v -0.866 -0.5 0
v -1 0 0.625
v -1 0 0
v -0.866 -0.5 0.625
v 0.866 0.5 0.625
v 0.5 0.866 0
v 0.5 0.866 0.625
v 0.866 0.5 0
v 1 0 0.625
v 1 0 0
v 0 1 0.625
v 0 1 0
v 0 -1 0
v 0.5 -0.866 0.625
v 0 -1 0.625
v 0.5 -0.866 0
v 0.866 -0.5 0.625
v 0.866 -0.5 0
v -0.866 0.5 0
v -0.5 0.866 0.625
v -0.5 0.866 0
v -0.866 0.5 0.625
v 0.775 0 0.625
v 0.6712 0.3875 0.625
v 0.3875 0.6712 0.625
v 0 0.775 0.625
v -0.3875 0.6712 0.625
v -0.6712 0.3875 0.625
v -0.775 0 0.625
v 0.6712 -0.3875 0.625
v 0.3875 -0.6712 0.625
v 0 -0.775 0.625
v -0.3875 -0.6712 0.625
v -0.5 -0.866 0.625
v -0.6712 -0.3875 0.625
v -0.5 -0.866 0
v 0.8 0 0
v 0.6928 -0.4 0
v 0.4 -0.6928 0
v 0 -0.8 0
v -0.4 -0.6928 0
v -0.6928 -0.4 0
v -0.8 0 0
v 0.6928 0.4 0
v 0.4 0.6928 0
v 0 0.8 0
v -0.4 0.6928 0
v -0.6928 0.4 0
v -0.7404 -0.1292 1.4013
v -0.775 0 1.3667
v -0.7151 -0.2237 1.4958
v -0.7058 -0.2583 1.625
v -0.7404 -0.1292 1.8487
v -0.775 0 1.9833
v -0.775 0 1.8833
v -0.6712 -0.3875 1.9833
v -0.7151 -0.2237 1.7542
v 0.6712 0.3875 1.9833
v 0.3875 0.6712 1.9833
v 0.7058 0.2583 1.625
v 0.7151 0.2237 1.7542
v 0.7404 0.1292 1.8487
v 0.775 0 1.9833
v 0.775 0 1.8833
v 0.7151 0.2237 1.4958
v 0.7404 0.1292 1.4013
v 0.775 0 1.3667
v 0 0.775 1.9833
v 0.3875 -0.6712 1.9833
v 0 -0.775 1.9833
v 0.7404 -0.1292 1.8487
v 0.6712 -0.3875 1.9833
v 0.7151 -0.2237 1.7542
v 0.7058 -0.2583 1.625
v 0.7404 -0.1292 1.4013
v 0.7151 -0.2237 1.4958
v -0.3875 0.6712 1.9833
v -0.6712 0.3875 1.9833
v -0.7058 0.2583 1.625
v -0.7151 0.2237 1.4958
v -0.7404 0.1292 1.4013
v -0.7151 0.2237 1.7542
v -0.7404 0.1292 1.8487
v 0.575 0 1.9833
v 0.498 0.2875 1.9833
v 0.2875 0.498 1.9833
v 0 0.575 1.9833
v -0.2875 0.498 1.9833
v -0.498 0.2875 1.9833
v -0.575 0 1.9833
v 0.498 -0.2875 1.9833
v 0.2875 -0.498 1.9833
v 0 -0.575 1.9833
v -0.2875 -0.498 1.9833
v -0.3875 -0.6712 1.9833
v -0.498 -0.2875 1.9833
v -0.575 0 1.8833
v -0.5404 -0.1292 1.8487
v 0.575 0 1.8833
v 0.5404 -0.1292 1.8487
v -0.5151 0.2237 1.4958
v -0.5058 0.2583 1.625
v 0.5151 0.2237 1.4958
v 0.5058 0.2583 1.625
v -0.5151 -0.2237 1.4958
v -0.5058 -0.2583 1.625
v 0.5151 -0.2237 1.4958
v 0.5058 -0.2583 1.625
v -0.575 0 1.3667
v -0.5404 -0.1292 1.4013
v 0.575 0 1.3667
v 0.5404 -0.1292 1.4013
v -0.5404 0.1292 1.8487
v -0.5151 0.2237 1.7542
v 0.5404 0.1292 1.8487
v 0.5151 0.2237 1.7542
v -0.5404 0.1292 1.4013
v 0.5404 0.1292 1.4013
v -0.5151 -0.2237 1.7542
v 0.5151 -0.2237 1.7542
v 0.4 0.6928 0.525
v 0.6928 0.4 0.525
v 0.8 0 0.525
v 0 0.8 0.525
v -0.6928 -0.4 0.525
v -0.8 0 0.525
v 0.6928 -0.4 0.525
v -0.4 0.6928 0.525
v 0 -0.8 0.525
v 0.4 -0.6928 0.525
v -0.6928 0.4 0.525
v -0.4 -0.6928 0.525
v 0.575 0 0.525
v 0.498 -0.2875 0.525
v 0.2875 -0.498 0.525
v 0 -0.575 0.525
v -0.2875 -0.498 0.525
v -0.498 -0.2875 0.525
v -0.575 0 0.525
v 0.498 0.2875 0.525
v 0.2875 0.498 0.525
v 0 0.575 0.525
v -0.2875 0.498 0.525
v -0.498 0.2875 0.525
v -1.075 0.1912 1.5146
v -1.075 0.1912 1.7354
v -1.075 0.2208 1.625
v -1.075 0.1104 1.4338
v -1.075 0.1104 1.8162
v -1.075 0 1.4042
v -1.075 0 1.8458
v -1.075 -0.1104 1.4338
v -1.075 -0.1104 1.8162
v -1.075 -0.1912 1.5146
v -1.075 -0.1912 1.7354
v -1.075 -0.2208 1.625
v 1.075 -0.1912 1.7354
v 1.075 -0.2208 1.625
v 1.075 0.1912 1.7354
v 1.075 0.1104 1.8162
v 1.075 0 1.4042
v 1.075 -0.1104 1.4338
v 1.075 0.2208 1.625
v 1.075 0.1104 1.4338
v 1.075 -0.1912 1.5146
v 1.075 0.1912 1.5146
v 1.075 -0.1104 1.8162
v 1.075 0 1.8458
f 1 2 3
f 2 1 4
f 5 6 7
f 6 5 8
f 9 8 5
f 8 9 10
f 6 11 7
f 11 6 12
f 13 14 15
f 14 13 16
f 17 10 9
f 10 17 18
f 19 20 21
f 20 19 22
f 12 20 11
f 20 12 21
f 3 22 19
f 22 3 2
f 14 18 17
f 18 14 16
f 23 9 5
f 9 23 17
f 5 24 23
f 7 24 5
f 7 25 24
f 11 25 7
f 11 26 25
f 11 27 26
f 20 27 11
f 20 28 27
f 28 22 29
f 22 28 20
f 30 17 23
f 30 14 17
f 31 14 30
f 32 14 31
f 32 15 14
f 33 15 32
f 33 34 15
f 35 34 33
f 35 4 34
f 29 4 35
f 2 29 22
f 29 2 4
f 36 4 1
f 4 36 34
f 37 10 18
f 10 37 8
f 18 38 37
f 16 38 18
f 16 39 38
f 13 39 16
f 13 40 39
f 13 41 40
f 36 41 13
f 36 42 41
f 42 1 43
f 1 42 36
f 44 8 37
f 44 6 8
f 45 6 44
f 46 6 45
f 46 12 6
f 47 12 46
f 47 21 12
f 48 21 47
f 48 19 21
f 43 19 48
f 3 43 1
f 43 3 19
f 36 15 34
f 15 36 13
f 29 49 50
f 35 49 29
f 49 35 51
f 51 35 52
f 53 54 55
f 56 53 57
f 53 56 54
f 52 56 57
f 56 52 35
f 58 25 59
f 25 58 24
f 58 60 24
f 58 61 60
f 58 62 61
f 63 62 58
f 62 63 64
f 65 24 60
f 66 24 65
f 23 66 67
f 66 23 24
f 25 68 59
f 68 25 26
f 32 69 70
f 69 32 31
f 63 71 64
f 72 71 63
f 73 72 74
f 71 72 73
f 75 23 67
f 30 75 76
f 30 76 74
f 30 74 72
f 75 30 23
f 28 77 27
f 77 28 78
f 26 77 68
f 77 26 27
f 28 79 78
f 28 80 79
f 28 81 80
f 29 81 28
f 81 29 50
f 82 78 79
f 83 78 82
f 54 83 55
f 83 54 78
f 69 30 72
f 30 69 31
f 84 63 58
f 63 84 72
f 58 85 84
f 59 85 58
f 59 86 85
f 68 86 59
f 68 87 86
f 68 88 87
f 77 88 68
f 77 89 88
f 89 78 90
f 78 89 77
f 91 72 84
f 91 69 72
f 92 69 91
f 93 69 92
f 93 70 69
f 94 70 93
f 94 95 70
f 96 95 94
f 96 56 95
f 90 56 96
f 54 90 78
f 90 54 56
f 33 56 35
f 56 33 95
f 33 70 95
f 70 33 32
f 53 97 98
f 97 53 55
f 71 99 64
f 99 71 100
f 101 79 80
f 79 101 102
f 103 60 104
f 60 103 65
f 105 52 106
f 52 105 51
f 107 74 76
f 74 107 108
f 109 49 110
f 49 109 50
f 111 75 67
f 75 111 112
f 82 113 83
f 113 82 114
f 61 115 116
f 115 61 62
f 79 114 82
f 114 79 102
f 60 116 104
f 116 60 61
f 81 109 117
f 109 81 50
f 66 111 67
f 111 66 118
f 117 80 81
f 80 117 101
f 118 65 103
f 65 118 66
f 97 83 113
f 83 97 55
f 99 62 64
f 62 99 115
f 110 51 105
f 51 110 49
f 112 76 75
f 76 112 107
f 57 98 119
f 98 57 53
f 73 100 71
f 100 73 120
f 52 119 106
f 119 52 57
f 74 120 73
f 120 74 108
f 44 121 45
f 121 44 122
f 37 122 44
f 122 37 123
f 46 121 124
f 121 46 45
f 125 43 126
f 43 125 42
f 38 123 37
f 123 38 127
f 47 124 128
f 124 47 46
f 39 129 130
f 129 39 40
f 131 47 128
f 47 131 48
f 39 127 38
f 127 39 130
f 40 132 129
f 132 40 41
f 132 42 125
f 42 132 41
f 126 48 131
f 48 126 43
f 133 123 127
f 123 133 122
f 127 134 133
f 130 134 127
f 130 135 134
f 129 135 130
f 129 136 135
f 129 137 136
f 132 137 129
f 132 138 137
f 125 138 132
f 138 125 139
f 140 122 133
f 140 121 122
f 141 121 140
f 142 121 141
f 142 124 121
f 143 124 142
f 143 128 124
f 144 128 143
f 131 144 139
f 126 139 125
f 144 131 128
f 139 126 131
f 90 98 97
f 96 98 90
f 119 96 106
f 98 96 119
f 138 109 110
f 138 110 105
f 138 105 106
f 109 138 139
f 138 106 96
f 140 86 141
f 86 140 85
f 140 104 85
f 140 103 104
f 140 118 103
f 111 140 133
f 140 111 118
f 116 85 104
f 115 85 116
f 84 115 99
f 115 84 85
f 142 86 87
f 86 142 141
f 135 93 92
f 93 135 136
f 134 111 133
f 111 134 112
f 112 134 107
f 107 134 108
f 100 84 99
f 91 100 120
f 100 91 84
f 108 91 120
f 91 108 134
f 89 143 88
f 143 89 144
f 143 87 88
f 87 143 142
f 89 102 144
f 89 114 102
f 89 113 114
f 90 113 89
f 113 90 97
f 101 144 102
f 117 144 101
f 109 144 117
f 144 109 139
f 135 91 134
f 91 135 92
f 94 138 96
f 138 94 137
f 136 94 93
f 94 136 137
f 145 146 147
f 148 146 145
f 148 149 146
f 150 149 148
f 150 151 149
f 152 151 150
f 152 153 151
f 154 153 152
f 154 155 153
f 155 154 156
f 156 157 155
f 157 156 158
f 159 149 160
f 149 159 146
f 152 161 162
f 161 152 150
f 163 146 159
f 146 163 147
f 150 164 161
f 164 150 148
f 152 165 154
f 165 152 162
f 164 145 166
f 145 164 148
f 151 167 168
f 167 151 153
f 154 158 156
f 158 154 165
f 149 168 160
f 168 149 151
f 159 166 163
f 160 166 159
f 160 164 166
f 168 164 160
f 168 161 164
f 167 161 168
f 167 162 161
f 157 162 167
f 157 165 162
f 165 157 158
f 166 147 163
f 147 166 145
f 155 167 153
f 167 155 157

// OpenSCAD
tolerance=0.075;
hole_radius=0.05;
grid_hole_radius=0.05;
outer_radius=1;
thickness=0.2;
hole_attach_height=0.05;
attach_thickness=0.1;
bottom_rotation_height=1.625;
top_rotation_height=1.35;
next_hole_radius=0.05;
next_hole_attach_height=0.05;
next_inner=0.8;
max_turn=90.0;
min_turn=90.0;
hole_twist=0.0042;

//parameters that don't have to be defined explicitly
eps = tolerance/100;
inner_radius = outer_radius - thickness;
axle_offset = attach_thickness;
bottom_joint_attach_radius = outer_radius - hole_attach_height - grid_hole_radius*2 - tolerance;
fn = 12;
fnh = 6;

//solve for b = axle height
max_turn_b = outer_radius / tan((180 - max_turn)/2);
min_turn_b = outer_radius / tan((180 - min_turn)/2);
axle_radius = bottom_joint_attach_radius/3;

grid_hole_height = hole_radius*2 + hole_attach_height * 2;
bottom_joint_grid_clearance = bottom_rotation_height - (hole_attach_height*2 + hole_radius*2 + grid_hole_height + max_turn_b + attach_thickness);

module angled_cylinder(angle_deg_y, _h, _r, angle_deg_x = 0) {
    rotate([angle_deg_x, angle_deg_y, 0]) { // Rotate the cylinder 
            cylinder(h = _h, r = _r, center = true, $fn = fnh);
        }
}

module hole(_h) {
    cylinder(h = _h, r = grid_hole_radius, $fn = fnh);
}

//makes circle of holes
module circular_grid(_h, _r, _n) {
    for (i = [0:_n-1]) {
        angle = i * 360 / _n;
        x_pos = _r * cos(angle);
        y_pos = _r * sin(angle);
        translate([x_pos, y_pos, -eps]) {
            hole(_h);
        }
    }
}

//makes grid of holes
module hole_grid(hole_height, grid_h) {
    translate([0,0,hole_height]) {
        difference() {
            //cylinder
            cylinder(h = grid_h, r = (inner_radius + outer_radius)/2, 
                center=false, $fn = fn);
            //holes
            for (i = [0 : grid_hole_radius * 2 + hole_attach_height : inner_radius - grid_hole_radius * 2]) {
                circular_grid(grid_h + eps*2, i, ceil(6.28*i/(grid_hole_radius*4)));
            }
            
        } 
    }
}

module joint_bottom() {
    //make grid of holes
    grid_hole_height = hole_radius*2 + hole_attach_height * 2;
    //hole_grid(grid_hole_height, grid_hole_radius);
    
    bottom_joint_attach_height = max_turn_b + axle_radius + axle_offset;
   
    operating_height = hole_attach_height*2 + attach_thickness + hole_radius*2 + grid_hole_height + bottom_joint_grid_clearance;
    difference() {
        //bottom joint
        union() {
            cylinder(h=operating_height, r=outer_radius, $fn = fn);
            
            translate([0,0,operating_height]) {
                cylinder(h=bottom_joint_attach_height,r=bottom_joint_attach_radius,$fn=fn);
                //enforce min turn
                difference() {
                    cylinder(h=max_turn_b - min_turn_b,r=outer_radius,$fn=fn);
                    translate([-outer_radius,-outer_radius*2,-eps/2])
                    cube([outer_radius*2 + eps,outer_radius*2 + axle_radius + axle_offset + tolerance + eps,max_turn_b - min_turn_b + eps]);
                    
                    translate([-outer_radius,0,max_turn_b])
                    rotate([-(90+min_turn),0,0])
                    translate([0,-max_turn_b + eps/2,-axle_radius-axle_offset])
                    cube([outer_radius*2,max_turn_b - min_turn_b + eps,outer_radius*2+ axle_radius + axle_offset], center=false);
                }
                
                
            }
        }
        
        //hole for axle
        translate([0,0,operating_height + max_turn_b])
        rotate([0,90,0])
        cylinder(h=outer_radius*2,r=axle_radius,center=true,$fn=fn);
        
        //shelling
        cylinder(h=operating_height - attach_thickness, r=inner_radius, center = false, $fn = fn);
        
        cylinder(h=operating_height + bottom_joint_attach_height + eps, r =          bottom_joint_attach_radius - thickness, center = false, $fn = fn);
        //shell tolerance
        cylinder(h=eps, r=inner_radius, center=true,$fn = fn);
        
        //screw holes
//        translate([0,0,hole_radius + hole_attach_height]) 
//        rotate([0,0,hole_twist]) {
//            angled_cylinder(0, (outer_radius*1.5 + eps) * 2,  hole_radius, 90);
//            angled_cylinder(90, (outer_radius*1.5 + eps) * 2, hole_radius, 0);
//        } 
        
        //holes for routing strings
//        translate([0,-inner_radius + thickness,-hole_attach_height - grid_hole_radius + operating_height])
//        rotate([90,0,0])
//        cylinder(h=thickness + inner_radius + eps, r=grid_hole_radius,$fn=fn);
//        
//        translate([0,outer_radius,-hole_attach_height - grid_hole_radius + operating_height + max_turn_b - min_turn_b])
//        rotate([90,0,0])
//        cylinder(h=thickness + inner_radius + eps, r=grid_hole_radius,$fn=fn);
//        
//        translate([0,bottom_joint_attach_radius + hole_attach_height + grid_hole_radius,operating_height - attach_thickness - eps/2])
//        cylinder(h=attach_thickness + max_turn_b - min_turn_b - hole_attach_height + eps, r=grid_hole_radius,$fn=fn);
    }
}

module axle() {
    cylinder(h=outer_radius*2 + tolerance*2, r = axle_radius - tolerance/2, $fn = fn);
}

joint_bottom();

rotate([0,90,0])
translate([-bottom_rotation_height,0,-outer_radius - tolerance])
axle();
